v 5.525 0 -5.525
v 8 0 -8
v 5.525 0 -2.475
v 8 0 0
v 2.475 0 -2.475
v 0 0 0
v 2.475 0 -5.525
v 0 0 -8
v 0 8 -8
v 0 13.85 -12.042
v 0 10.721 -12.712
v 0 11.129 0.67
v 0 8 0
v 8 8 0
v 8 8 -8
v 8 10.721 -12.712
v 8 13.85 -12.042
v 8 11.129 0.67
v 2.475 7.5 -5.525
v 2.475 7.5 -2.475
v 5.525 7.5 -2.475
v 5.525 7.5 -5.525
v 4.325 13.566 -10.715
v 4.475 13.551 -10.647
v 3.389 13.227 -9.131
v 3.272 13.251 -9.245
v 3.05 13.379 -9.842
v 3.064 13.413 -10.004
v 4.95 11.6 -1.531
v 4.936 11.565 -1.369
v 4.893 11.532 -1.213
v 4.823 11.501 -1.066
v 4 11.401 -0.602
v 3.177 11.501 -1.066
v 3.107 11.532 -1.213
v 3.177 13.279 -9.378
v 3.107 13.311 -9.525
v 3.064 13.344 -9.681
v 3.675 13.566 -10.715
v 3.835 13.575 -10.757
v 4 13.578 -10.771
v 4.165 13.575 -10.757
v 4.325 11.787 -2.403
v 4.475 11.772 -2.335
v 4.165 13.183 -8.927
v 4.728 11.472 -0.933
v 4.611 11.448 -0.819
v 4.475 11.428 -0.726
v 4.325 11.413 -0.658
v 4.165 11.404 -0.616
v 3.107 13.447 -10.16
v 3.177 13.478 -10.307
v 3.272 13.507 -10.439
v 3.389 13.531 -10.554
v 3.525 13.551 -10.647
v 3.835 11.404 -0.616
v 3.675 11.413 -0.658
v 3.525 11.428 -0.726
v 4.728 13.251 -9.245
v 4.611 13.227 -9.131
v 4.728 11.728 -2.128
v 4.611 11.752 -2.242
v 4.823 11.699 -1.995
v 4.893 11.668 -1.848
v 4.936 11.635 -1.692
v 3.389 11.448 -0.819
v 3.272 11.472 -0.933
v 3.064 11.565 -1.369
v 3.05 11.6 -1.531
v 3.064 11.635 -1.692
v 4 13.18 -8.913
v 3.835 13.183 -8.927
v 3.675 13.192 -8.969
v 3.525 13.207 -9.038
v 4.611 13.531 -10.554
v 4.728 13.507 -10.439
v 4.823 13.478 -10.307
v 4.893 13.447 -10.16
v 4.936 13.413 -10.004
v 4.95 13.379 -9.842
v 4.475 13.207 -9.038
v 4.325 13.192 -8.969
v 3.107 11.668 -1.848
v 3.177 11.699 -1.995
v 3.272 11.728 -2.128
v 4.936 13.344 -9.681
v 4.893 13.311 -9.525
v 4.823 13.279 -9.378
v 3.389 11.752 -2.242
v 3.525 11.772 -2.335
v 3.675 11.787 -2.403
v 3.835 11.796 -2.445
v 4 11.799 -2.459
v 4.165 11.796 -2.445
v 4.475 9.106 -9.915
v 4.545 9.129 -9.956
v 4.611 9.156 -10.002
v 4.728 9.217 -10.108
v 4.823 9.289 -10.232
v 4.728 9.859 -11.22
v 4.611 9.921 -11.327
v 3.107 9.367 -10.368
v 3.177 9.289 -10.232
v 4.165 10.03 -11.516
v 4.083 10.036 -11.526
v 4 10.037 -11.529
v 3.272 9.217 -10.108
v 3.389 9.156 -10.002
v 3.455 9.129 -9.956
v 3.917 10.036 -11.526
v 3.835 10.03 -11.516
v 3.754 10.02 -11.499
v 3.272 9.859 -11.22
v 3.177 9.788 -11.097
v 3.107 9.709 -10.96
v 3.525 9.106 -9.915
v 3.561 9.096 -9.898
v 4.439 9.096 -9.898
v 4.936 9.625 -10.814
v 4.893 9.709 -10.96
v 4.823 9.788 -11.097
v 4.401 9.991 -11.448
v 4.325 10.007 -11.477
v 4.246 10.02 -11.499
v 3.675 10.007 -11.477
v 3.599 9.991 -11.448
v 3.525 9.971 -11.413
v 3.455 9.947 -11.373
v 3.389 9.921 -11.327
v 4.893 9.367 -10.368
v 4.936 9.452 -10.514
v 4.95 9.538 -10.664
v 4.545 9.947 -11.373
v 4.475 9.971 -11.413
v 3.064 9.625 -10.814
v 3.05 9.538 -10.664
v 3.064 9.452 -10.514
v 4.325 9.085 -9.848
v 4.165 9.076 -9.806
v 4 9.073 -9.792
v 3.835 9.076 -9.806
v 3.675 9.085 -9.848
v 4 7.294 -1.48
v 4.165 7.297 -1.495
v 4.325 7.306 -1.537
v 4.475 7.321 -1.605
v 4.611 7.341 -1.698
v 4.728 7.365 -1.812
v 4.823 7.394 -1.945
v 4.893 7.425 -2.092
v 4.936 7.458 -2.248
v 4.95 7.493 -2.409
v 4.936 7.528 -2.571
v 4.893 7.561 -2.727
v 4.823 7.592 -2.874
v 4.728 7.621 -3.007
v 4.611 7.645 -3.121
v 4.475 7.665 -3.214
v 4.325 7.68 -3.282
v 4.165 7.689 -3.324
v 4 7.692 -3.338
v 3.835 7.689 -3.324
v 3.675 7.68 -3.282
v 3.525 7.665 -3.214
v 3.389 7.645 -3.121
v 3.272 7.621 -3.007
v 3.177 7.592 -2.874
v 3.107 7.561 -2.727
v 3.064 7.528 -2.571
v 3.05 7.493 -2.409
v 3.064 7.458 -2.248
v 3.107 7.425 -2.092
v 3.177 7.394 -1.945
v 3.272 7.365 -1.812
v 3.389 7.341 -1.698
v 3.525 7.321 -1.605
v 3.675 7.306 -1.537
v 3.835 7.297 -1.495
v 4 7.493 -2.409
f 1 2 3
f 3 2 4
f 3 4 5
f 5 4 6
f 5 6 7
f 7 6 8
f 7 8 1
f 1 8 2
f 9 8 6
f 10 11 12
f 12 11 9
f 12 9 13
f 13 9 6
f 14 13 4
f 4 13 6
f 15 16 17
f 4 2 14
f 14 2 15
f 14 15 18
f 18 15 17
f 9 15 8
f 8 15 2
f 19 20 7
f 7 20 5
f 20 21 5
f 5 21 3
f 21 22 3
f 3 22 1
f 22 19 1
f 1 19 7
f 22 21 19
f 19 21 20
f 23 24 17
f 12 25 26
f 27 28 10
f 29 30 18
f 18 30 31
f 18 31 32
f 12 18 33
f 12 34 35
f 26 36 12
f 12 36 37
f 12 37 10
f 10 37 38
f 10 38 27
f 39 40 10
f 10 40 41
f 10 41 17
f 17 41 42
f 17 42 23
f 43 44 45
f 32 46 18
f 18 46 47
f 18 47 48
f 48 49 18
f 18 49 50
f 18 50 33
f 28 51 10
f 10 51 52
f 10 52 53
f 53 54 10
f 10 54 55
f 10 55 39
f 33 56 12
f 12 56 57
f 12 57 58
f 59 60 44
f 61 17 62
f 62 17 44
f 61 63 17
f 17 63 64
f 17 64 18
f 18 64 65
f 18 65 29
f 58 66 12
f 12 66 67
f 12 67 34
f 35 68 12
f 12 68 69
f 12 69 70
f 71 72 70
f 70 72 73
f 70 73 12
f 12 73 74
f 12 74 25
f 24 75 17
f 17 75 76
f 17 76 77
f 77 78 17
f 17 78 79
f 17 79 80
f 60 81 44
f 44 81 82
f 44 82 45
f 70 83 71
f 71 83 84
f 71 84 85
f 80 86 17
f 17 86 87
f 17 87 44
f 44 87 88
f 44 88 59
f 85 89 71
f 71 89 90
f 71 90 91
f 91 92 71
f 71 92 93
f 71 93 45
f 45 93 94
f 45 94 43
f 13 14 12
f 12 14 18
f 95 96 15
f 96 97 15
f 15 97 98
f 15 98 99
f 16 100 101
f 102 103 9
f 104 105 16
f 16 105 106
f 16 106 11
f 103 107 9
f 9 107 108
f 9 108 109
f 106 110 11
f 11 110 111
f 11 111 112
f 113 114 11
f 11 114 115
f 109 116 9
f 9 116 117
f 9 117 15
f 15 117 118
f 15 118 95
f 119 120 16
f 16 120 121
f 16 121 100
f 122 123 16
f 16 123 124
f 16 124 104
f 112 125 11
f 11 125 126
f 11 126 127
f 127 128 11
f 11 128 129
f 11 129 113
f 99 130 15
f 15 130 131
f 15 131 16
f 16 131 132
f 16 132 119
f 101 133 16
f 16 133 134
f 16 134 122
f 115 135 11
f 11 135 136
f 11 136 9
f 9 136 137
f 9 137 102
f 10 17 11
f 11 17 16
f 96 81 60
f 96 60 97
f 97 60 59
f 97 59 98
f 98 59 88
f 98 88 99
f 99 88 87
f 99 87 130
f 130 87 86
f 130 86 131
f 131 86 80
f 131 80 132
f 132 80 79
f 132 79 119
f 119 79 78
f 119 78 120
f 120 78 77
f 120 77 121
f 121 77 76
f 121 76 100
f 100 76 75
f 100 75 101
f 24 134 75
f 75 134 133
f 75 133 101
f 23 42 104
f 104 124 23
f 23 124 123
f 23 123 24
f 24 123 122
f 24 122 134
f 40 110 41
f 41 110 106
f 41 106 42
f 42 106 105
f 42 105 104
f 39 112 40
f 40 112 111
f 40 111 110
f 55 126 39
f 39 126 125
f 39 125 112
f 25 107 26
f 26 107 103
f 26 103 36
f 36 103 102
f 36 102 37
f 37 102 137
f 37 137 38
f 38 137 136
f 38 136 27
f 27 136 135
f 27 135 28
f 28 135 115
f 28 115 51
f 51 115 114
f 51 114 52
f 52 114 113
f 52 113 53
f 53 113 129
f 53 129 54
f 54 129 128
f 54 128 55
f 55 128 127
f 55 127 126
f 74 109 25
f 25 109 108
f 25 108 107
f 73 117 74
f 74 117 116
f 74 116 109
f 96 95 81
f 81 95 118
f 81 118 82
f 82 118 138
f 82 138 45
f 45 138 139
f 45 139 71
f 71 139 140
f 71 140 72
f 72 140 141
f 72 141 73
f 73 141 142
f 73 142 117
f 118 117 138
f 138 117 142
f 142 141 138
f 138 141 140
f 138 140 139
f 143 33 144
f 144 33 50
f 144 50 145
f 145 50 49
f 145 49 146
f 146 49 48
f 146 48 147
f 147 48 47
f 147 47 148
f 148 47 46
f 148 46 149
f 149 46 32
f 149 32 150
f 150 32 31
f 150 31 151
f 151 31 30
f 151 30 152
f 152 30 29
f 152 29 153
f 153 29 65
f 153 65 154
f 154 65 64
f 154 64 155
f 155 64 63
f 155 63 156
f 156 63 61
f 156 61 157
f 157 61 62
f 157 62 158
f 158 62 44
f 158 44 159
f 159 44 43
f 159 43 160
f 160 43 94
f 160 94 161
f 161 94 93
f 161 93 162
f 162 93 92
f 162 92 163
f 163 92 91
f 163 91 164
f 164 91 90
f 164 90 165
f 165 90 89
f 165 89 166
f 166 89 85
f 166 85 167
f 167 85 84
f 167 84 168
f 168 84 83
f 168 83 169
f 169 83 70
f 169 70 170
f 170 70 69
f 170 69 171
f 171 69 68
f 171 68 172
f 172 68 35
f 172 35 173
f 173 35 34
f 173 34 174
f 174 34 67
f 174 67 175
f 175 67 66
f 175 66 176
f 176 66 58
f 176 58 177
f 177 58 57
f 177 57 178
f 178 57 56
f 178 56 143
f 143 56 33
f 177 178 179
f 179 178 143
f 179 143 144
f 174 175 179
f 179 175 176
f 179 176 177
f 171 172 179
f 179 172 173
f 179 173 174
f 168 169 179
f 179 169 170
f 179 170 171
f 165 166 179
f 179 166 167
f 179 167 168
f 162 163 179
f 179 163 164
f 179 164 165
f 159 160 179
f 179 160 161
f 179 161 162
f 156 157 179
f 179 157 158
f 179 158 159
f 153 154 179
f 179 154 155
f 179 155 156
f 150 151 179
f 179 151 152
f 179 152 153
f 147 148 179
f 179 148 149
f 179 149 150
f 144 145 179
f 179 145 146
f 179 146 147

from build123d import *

# Parameters (mm, degrees)
SKETCH_1_W          = 8
SKETCH_1_H          = 8
SKETCH_1_W_2        = 3.05
SKETCH_1_H_2        = 3.05
EXTRUDE_1_DEPTH     = 7.5
SKETCH_2_W          = 8
SKETCH_2_H          = 8
EXTRUDE_2_DEPTH     = 0.5
EXTRUDE_3_DEPTH     = 8
SKETCH_4_R          = 0.95
EXTRUDE_4_DEPTH     = 4
SKETCH_4_2_R        = 0.95
CUT_EXTRUDE_1_DEPTH = 4.2


with BuildPart() as part:
    # 草图1 → 凸台-拉伸1 (new body)
    with BuildSketch(Plane(origin=(0, 0, 0), x_dir=(1, 0, 0), z_dir=(0, 1, 0))):
        with Locations((4, 4)):
            Rectangle(SKETCH_1_W, SKETCH_1_H)
        with Locations((4, 4)):
            Rectangle(SKETCH_1_W_2, SKETCH_1_H_2, mode=Mode.SUBTRACT)
    extrude(amount=EXTRUDE_1_DEPTH)

    # 草图2 → 凸台-拉伸2 (add)
    with BuildSketch(Plane(origin=(0, 7.5, 0), x_dir=(1, 0, 0), z_dir=(0, 1, 0))):
        with Locations((4, 4)):
            Rectangle(SKETCH_2_W, SKETCH_2_H)
    extrude(amount=EXTRUDE_2_DEPTH)

    # 草图3 → 凸台-拉伸3 (add)
    with BuildSketch(Plane(origin=(8, 0, 0), x_dir=(0, 0, -1), z_dir=(1, 0, 0))):
        Polygon((12.042467117, 13.849699628), (12.712142643, 10.720556823), (0, 8), (-0.669675526, 11.129142804), align=None)
        Polygon((8, 8), (12.712142643, 10.720556823), (0, 8), align=None)
    extrude(amount=-EXTRUDE_3_DEPTH)

    # 草图4 → 凸台-拉伸4 (add)
    with BuildSketch(Plane(origin=(0, 10.778779281, 2.306792989), x_dir=(1, 0, 0), z_dir=(0, 0.9778571263703284, 0.2092736017914434))):
        with Locations((4, 3.924188814)):
            Circle(SKETCH_4_R)
        with Locations((4, 12.424188814)):
            Circle(SKETCH_4_R)
    extrude(amount=-EXTRUDE_4_DEPTH)

    # 草图4<2> → 切除-拉伸1 (cut)
    with BuildSketch(Plane(origin=(0, 10.778779281, 2.306792989), x_dir=(1, 0, 0), z_dir=(0, 0.9778571263703284, 0.2092736017914434))):
        with Locations(Location((4, 3.924188814, 0), (0, 0, 270))):
            Circle(SKETCH_4_2_R)
        with Locations(Location((4, 12.424188814, 0), (0, 0, 242.456788252))):
            Circle(SKETCH_4_2_R)
    extrude(amount=-CUT_EXTRUDE_1_DEPTH, mode=Mode.SUBTRACT)


solid = part.part
